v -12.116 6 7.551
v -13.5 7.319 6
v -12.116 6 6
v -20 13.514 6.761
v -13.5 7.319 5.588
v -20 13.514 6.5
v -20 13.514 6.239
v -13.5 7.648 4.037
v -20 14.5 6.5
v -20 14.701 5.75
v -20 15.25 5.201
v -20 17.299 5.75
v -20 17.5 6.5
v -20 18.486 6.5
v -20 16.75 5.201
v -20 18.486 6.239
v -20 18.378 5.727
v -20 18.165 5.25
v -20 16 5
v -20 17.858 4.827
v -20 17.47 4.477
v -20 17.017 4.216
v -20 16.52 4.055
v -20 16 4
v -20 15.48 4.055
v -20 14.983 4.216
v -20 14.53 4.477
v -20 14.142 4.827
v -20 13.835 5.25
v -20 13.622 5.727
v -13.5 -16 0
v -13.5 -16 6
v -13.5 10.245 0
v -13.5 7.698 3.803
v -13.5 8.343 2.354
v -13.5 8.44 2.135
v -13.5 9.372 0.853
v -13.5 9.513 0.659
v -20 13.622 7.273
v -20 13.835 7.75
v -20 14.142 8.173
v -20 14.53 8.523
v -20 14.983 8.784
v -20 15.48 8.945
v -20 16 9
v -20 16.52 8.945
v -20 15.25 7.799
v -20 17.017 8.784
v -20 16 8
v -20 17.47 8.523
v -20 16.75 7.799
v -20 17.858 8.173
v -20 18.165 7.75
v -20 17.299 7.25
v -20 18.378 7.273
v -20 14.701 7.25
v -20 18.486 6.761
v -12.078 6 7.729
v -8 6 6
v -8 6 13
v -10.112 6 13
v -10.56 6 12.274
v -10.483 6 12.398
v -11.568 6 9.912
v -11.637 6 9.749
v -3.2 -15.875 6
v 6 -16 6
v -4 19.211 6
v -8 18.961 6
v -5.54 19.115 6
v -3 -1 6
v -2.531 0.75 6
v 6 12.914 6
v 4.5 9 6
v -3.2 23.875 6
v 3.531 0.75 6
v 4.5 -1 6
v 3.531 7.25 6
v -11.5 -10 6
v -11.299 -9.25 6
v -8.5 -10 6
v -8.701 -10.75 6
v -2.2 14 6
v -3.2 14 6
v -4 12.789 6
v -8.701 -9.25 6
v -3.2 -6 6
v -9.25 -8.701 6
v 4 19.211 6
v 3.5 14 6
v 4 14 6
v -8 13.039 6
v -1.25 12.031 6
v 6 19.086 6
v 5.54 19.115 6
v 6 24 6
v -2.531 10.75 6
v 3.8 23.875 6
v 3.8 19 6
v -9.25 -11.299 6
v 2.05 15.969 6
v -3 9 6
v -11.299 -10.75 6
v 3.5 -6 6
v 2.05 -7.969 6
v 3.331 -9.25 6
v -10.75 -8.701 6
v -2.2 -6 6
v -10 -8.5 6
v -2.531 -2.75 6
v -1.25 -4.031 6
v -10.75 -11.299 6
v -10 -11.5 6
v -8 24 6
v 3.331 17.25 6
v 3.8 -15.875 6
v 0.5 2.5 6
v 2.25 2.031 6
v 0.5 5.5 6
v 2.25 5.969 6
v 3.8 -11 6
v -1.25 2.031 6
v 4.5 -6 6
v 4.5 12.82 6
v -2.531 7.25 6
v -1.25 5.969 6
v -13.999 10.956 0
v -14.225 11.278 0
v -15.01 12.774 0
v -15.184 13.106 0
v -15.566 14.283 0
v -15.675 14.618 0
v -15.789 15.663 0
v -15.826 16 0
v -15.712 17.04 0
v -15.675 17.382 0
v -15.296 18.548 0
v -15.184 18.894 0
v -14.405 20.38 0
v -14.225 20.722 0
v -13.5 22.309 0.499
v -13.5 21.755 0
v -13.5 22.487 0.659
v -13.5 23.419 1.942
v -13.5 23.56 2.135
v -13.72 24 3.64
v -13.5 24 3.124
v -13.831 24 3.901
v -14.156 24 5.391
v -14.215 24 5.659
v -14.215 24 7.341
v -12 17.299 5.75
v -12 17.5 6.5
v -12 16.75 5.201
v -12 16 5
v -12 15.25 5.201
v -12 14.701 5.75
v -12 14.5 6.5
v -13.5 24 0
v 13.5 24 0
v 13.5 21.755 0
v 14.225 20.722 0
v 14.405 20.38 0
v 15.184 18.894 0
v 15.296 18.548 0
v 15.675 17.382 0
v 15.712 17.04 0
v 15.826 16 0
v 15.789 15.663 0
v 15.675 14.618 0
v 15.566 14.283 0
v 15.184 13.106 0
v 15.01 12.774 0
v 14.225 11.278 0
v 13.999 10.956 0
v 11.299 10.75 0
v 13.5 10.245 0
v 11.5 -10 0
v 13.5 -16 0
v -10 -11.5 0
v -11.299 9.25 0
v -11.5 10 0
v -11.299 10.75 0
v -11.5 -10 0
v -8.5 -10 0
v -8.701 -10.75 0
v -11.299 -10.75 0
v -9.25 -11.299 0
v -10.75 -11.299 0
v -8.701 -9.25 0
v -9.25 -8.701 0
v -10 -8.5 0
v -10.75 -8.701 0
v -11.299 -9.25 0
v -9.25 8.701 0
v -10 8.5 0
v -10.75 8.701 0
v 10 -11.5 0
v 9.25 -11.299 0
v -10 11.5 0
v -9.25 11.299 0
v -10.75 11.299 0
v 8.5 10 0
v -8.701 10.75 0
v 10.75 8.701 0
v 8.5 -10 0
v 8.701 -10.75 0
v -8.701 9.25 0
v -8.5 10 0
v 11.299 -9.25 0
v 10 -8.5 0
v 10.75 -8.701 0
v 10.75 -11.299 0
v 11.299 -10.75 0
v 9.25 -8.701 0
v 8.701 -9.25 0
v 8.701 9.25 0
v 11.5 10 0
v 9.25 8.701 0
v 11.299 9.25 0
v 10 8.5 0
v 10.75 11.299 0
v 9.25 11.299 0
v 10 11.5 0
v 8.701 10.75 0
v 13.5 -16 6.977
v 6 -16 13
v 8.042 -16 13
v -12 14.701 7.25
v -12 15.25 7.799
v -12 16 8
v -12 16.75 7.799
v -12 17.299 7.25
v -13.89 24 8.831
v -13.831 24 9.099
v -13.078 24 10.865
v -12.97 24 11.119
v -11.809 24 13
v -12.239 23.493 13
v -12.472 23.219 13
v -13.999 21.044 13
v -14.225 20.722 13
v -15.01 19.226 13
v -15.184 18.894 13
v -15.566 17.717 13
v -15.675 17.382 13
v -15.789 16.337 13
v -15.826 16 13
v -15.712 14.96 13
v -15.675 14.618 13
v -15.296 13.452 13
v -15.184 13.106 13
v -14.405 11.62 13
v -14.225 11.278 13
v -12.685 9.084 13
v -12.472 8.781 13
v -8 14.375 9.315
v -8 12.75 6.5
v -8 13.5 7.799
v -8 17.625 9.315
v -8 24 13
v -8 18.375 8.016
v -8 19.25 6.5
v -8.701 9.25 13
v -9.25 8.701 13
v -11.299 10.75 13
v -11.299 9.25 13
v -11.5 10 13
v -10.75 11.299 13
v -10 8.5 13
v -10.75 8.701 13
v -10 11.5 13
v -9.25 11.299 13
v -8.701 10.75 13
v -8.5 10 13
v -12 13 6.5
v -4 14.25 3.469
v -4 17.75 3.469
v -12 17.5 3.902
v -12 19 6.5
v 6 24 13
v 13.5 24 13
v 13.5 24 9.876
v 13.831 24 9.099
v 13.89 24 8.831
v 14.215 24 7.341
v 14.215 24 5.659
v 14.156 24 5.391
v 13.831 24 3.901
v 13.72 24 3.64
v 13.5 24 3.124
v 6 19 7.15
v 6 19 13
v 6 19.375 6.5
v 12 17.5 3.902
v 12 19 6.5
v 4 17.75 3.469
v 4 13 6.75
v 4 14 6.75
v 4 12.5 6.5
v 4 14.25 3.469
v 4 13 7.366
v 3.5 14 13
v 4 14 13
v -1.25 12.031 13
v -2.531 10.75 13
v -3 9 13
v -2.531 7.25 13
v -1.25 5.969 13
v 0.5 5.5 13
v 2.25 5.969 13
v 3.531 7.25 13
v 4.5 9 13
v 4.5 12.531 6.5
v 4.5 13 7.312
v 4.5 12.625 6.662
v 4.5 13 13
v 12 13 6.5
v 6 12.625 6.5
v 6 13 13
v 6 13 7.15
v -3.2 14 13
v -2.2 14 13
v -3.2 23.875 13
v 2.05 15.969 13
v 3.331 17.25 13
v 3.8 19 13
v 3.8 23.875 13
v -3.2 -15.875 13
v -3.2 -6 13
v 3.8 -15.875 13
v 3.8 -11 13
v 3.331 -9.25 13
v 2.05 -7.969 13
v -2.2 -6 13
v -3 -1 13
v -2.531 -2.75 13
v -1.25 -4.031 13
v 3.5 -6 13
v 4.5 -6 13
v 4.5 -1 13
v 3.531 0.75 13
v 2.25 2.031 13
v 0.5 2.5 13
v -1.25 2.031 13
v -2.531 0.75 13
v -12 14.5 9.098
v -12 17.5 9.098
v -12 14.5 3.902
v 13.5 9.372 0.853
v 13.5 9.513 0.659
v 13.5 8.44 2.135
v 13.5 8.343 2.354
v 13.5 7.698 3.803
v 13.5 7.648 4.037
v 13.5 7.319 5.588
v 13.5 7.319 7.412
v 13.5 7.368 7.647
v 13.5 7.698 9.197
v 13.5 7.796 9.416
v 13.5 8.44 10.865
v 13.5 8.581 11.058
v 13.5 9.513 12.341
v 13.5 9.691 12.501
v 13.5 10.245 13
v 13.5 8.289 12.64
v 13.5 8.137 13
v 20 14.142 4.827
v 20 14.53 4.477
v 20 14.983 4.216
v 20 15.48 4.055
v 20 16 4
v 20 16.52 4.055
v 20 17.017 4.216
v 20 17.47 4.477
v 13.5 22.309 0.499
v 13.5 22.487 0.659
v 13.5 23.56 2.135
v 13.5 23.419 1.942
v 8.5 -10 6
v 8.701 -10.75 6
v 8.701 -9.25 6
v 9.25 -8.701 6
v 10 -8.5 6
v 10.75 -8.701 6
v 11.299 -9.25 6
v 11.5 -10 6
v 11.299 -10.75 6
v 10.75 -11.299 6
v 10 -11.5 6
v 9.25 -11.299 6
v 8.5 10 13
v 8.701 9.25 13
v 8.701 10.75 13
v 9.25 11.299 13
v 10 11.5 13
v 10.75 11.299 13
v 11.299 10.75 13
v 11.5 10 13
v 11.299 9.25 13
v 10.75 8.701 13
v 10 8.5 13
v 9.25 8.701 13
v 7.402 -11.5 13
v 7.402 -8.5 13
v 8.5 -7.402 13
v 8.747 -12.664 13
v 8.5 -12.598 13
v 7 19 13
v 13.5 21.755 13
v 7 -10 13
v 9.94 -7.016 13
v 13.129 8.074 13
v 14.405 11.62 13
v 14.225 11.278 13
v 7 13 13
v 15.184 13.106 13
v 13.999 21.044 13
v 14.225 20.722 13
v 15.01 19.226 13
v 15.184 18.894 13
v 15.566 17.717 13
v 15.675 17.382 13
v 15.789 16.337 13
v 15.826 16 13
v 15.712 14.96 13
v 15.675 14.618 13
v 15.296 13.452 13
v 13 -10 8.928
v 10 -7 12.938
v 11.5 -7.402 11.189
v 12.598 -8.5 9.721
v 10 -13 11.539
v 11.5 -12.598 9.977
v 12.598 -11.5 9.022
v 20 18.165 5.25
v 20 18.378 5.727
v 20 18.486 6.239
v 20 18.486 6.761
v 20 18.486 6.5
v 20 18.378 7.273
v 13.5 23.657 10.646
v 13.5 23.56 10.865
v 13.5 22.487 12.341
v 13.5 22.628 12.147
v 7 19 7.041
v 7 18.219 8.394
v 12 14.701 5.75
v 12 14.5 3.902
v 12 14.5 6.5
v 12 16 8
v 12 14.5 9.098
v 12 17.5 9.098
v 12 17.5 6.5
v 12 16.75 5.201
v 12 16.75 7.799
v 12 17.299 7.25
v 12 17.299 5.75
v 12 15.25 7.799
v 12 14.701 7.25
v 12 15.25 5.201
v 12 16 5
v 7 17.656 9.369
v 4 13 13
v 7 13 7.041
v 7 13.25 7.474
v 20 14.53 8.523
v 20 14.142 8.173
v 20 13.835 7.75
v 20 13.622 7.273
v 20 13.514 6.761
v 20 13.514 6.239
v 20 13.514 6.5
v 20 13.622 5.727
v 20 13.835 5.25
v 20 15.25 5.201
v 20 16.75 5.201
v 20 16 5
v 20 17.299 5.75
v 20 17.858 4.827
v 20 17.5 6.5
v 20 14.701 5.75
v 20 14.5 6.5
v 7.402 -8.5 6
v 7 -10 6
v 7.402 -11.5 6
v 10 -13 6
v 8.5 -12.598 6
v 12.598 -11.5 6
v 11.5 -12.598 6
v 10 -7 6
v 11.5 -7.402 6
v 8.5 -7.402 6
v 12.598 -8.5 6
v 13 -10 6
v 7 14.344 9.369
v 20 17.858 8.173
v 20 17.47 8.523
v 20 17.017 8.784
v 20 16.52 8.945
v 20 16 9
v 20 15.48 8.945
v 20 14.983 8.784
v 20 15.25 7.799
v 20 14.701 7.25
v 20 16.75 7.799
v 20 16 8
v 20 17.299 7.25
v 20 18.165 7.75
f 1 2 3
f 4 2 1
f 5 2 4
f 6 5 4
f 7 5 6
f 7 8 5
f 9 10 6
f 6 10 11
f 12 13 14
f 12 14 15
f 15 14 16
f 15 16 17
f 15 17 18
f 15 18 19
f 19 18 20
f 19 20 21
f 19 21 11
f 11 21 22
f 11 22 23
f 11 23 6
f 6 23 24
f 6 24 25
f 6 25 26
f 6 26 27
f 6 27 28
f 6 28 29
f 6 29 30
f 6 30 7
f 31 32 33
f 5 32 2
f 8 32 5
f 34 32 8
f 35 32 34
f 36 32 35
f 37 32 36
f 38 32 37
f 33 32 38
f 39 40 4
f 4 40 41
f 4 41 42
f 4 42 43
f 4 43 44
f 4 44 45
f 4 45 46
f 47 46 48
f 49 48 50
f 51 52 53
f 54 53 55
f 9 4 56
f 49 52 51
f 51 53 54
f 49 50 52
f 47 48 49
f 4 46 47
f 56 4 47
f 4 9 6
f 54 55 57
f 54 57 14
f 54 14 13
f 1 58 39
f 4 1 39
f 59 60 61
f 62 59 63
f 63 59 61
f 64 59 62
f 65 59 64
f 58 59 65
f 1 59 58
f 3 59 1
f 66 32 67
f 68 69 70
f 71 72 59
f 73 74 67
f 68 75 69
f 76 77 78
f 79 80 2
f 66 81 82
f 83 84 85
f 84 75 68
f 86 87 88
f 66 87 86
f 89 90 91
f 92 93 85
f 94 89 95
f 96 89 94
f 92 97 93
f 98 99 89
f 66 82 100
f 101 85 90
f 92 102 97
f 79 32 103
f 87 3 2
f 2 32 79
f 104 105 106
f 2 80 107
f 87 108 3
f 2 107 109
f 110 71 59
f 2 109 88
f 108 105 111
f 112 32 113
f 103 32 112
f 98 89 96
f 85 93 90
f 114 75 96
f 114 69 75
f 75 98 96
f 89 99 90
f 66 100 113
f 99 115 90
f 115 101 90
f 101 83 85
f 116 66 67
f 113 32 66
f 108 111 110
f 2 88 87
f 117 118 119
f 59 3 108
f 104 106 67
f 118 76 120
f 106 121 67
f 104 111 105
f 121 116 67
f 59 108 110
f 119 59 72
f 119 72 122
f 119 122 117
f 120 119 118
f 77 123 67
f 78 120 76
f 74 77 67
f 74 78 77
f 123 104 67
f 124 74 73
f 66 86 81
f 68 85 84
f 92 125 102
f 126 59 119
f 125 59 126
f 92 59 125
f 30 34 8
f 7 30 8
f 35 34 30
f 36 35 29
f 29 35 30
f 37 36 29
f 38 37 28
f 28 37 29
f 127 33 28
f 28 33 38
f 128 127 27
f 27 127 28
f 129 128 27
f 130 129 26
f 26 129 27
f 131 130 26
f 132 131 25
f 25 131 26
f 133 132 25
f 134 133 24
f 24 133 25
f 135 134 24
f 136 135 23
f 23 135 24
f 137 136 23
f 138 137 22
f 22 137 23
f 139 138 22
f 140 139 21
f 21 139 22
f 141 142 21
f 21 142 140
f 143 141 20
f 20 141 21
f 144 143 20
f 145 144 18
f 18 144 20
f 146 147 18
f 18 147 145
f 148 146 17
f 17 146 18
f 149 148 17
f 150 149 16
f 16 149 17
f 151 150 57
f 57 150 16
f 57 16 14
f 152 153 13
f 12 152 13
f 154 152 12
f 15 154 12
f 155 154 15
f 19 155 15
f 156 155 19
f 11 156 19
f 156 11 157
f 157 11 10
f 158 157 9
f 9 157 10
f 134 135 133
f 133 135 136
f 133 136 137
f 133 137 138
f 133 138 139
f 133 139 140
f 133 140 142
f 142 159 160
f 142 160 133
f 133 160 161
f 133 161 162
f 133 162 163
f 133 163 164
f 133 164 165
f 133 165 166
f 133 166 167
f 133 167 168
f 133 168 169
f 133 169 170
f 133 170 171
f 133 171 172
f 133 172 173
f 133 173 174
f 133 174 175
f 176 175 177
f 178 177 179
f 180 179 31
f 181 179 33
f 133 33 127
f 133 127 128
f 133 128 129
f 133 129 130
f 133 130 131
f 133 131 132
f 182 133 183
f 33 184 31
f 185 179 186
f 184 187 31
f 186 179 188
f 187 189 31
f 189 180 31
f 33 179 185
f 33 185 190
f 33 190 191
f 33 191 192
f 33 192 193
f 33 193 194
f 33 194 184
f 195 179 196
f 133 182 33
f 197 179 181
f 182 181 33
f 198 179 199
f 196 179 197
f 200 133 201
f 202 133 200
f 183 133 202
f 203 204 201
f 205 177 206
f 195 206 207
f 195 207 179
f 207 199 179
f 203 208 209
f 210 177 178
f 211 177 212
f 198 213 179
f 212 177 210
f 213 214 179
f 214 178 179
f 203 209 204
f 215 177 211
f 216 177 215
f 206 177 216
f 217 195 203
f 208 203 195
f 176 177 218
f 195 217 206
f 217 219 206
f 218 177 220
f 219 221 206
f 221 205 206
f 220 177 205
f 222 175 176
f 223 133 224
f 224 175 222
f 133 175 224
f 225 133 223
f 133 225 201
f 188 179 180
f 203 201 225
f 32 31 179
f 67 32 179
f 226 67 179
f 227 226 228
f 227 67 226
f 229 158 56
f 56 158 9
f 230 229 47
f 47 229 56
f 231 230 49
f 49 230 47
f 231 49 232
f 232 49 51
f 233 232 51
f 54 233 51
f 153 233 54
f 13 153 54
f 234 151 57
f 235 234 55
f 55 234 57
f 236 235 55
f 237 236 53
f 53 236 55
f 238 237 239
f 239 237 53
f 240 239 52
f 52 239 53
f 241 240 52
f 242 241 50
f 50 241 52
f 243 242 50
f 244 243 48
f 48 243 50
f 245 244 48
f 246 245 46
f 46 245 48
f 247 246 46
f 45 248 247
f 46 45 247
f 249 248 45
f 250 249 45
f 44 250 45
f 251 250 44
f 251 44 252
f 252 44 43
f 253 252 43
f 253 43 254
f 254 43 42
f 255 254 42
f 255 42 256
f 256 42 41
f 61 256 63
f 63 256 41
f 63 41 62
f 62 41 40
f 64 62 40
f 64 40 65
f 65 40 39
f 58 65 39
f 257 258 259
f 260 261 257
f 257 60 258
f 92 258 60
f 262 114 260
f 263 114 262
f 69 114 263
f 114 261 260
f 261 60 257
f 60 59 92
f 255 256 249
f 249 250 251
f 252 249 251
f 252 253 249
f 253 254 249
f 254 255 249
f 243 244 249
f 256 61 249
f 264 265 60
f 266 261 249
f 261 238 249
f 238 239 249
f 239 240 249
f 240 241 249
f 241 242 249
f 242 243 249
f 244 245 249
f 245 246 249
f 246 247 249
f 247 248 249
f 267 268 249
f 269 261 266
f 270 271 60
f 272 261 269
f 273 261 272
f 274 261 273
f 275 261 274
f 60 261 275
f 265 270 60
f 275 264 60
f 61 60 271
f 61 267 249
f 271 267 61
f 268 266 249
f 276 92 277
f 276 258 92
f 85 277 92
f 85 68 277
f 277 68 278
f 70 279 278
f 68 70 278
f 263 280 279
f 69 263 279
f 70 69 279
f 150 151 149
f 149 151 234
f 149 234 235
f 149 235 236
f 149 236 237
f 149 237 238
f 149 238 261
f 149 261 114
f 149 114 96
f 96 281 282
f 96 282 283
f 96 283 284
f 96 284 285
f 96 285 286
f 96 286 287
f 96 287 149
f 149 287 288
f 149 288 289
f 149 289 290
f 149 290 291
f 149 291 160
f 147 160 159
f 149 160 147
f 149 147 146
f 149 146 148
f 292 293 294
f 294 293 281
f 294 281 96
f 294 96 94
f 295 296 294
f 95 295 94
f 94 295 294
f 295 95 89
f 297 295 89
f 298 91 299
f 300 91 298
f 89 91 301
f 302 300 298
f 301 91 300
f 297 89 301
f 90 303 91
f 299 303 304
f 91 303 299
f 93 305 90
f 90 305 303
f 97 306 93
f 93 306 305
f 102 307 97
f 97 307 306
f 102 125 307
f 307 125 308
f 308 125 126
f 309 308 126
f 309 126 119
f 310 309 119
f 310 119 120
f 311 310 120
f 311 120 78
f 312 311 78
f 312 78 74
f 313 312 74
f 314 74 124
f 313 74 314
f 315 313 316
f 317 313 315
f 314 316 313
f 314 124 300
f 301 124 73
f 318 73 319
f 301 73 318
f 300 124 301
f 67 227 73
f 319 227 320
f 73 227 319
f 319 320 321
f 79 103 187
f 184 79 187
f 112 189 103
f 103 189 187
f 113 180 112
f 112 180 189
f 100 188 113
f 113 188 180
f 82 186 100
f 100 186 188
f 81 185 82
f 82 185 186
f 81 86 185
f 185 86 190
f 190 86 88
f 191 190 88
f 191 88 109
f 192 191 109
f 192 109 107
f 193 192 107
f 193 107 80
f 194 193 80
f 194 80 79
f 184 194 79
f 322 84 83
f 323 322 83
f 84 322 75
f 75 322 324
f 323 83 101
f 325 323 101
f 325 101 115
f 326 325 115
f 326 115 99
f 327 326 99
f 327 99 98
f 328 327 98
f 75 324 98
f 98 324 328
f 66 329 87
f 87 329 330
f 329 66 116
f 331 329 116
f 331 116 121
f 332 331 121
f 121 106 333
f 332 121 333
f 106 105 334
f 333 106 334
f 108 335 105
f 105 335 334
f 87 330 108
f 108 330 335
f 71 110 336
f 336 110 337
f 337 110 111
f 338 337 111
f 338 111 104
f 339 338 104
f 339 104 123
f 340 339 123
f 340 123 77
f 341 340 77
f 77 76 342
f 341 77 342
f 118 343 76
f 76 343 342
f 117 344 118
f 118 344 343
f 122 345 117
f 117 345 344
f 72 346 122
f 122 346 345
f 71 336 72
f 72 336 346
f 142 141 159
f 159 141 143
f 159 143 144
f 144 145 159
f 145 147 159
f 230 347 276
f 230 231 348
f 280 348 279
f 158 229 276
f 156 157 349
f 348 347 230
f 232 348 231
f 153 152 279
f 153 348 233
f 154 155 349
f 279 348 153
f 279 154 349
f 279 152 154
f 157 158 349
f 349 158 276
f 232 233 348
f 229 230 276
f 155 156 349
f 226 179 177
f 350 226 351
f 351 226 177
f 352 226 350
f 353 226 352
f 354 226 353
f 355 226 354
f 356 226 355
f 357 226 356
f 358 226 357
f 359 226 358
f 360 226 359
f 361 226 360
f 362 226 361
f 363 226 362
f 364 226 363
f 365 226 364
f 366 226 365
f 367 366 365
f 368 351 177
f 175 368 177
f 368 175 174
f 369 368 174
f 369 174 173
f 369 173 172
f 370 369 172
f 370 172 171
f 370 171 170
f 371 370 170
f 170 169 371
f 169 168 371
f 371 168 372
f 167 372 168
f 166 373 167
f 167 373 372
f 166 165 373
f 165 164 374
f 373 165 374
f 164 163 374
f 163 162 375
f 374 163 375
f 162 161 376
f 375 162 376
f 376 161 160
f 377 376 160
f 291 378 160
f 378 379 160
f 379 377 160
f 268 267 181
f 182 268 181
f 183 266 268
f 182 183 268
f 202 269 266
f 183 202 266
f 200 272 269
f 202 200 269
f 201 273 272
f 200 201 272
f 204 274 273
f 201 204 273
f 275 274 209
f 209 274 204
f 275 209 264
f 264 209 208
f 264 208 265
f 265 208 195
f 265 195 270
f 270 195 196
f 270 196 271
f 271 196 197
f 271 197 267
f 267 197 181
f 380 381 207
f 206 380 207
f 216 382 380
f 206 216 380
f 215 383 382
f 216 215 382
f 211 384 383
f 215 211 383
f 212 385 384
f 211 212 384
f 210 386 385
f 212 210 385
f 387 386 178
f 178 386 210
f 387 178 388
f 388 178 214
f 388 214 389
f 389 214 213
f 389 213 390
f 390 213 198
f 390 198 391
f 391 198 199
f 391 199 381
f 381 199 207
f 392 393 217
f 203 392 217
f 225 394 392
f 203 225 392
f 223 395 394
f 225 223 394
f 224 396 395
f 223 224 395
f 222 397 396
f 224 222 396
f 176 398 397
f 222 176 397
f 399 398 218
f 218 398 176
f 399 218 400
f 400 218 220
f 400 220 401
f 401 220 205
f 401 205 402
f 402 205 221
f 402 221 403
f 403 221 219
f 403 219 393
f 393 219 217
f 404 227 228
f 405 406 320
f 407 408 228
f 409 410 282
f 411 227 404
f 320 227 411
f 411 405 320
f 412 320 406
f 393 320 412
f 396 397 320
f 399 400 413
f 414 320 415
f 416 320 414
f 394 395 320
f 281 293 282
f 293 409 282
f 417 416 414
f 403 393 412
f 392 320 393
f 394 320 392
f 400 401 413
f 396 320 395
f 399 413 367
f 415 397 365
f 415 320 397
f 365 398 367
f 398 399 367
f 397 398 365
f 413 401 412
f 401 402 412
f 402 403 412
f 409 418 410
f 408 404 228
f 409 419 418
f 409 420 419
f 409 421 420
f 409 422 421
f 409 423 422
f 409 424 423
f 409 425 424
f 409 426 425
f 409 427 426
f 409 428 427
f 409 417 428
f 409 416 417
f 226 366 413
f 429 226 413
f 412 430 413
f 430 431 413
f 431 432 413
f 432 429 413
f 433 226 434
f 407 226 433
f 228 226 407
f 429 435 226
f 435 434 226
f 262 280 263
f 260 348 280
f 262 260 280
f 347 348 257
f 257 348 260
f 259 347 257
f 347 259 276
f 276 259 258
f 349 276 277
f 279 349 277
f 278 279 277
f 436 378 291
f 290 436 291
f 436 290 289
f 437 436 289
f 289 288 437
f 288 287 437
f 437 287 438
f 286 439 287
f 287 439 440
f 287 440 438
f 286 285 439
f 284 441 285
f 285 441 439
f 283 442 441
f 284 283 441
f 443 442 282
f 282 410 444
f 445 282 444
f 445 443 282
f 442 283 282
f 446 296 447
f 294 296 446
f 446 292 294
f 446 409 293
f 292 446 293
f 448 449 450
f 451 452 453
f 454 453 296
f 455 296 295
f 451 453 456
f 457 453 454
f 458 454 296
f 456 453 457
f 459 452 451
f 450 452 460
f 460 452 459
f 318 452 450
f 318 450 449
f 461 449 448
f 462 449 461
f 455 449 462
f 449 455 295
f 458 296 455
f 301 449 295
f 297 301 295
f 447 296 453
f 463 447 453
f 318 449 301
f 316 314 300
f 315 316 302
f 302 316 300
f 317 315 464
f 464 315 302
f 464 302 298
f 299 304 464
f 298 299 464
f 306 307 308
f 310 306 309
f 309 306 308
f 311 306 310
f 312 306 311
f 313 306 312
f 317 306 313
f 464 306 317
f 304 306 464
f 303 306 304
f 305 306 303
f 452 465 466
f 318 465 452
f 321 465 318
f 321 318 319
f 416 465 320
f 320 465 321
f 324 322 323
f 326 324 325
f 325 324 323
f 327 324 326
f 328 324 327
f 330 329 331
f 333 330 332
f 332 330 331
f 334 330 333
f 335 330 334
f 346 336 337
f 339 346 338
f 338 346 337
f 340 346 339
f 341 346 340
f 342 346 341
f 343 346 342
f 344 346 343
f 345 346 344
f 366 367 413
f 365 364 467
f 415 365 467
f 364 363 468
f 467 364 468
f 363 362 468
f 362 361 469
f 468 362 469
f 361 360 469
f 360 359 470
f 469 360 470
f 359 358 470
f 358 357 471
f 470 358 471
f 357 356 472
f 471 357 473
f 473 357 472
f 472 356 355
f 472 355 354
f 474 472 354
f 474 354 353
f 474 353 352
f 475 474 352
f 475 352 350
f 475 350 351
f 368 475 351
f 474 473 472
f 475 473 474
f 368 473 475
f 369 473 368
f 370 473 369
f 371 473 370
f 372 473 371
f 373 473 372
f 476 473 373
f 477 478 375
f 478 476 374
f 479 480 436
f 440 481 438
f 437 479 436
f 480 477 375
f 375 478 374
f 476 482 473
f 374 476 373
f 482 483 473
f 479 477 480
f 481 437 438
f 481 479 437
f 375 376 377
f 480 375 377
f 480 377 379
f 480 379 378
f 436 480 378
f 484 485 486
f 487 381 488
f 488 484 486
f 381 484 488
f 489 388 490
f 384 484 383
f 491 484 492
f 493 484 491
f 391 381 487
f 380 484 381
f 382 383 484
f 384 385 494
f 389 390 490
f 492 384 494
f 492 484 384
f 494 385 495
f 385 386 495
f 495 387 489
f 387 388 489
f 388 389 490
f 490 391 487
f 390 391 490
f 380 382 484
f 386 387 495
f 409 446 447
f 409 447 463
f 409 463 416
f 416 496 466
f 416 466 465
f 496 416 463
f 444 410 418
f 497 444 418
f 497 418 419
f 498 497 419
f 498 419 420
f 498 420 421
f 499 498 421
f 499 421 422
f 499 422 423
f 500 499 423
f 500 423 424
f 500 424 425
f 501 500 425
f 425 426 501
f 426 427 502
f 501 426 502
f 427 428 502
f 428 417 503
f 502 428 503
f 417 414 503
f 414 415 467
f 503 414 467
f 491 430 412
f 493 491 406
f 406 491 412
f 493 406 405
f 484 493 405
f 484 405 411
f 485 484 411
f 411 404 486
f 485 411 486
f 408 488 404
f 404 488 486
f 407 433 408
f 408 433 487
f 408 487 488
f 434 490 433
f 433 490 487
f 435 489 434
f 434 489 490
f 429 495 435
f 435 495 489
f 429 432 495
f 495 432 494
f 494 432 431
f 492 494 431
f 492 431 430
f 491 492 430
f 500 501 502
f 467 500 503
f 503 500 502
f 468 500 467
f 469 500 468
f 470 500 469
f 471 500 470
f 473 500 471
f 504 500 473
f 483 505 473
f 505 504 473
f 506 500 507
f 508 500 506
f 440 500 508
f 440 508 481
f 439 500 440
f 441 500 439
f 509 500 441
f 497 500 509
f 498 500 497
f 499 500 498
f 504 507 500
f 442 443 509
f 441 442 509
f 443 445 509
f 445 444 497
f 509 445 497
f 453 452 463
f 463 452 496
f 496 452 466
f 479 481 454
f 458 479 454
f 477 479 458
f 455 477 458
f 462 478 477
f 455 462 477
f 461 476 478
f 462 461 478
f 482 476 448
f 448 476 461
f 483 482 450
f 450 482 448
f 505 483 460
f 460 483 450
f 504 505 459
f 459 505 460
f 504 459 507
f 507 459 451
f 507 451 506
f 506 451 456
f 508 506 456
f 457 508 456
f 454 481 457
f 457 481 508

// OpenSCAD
// file: configuration.scad
/*
 * Igor Soares' parallel kinematic XY i2
 * Configuration
 * (C) 2014 by Ígor Bruno Pereira Soares
 *
 * This project is free: you can redistribute it and/or modify
 * it under the terms of the GNU General Public License as published by
 * the Free Software Foundation, either version 2 of the License, or
 * (at your option) any later version.
 *
 * This project is distributed in the hope that it will be useful,
 * but WITHOUT ANY WARRANTY; without even the implied warranty of
 * MERCHANTABILITY or FITNESS FOR A PARTICULAR PURPOSE.  See the
 * GNU General Public License for more details.
 *
 * You should have received a copy of the GNU General Public License
 * along with this project.  If not, see <http://www.gnu.org/licenses/>.
 */

LIGHT_WALL_WIDTH = 2.01;
WALL_WIDTH = 5.0;
VERTICAL_SUPPORT_WALL = 0.5;
HORIZONTAL_SUPPORT_WALL = 0.255;

BEARING_DIAMETER = 22.4;
BEARING_WIDTH = 7;
BEARING_SCREW_DIAMETER = 8.2;
BEARING_SCREW_NUT_WIDTH = 13;
BEARING_WASHER_SPACING = 2.5;

LINEAR_BUSHING_DIAMETER = 15.3;
LINEAR_BUSHING_LEN = 24.4;
LINEAR_BUSHING_WALL = 1.0;

ROD_ACTUAL_DIAMETER = 8.0;
ROD_HOLE_DIAMETER = 8.4;

MOTOR_SCREW_DIAMETER = 3.4;
MOTOR_SCREW_MOUNT = 31; // nema 17
MOTOR_SIZE = 43;
MOTOR_MOUNT_INNER_DIAMETER = 30;
MOTOR_BELT_CLEARANCE = 5;

ST = 0.001;
// main file
include <configuration.scad>;

// Belt parameters
belt_width_clamp = 6;              // width of the belt, typically 6 (mm)
belt_thickness = 1.0 - 0.05;       // slightly less than actual belt thickness for compression fit (mm)           
belt_pitch = 2.0;                  // tooth pitch on the belt, 2 for GT2 (mm)
tooth_radius = 0.8;                // belt tooth radius, 0.8 for GT2 (mm)

separation = 40;
thickness = 6;

horn_thickness = 13;
horn_x = 8;

belt_width = 5;
belt_x = 5.6;
belt_z = 7;
corner_radius = 3.5;


m3_nut_radius = 3.0;
m3_wide_radius = 1.5;

module carriage() {
  // Timing belt (up and down).
  translate([-belt_x, 0, belt_z + belt_width/2]) %
    cube([1.2, 100, belt_width], center=true);
  translate([belt_x, 0, belt_z + belt_width/2]) %
    cube([1.2, 100, belt_width], center=true);
  difference() {
    union() {
      // Main body.
      translate([0, 4, thickness/2])
        cube([27, 40, thickness], center=true);
      // Ball joint mount horns.
      for (x = [-1, 1]) {
        scale([x, 1, 1]) intersection() {
          translate([0, 15, horn_thickness/2])
            cube([separation, 18, horn_thickness], center=true);
          translate([horn_x, 16, horn_thickness/2]) rotate([0, 90, 0])
            cylinder(r1=14, r2=2.5, h=separation/2-horn_x);
        }
      }

      // Avoid touching diagonal push rods (carbon tube).
      difference() {
        translate([9.75, 4, horn_thickness/2+1])
          cube([7.5, 40, horn_thickness-2], center=true);

        translate([23, -12, 12.5]) rotate([30, 40, 30])
          cube([40, 40, 20], center=true);
        translate([10, -10, 0])
          cylinder(r=m3_wide_radius+1.5, h=100, center=true, $fn=12);

      }

      // Belt clamps
      for (y = [[9, -1], [-1, 1]]) {
        translate([0.5, y[0], horn_thickness/2+1])
          color("green") hull() {
            translate([ corner_radius-0.0,  -y[1] * corner_radius + y[1], 0]) cube([1.0, 5, horn_thickness-2], center=true);
            cylinder(h=horn_thickness-2, r=corner_radius, $fn=12, center=true);
          }
      }
      for (y = [[19, -1], [-11, 1]]) {
        translate([0.30, y[0], horn_thickness/2+1])
          rotate([0, 0, 180]) color("blue") hull() {
            translate([ corner_radius-0.5,  -y[1] * corner_radius + y[1], 0]) cube([1.0, 5, horn_thickness-2], center=true);
            cylinder(h=horn_thickness-2, r=corner_radius, $fn=12, center=true);
				translate([ 0,  y[1]*4, 0]) cube([2*corner_radius, 0.5*corner_radius, horn_thickness-2], center=true);
          }
      }
    }
    // Screws for linear slider.
    for (x = [-10, 10]) {
      for (y = [-10, 10]) {
        translate([x, y, thickness]) #
          cylinder(r=m3_wide_radius, h=30, center=true, $fn=12);
      }
    }
    // Screws for ball joints.
    translate([-35, 16, horn_thickness/2]) rotate([0, 90, 0]) #
      cylinder(r=m3_wide_radius, h=60, center=true, $fn=12);
    translate([35, 16, horn_thickness/2]) rotate([0, 90, 0]) #
      cylinder(r=m3_wide_radius, h=60, center=true, $fn=12);
    // Lock nuts for ball joints.
    for (x = [-1, 1]) {
      scale([x, 1, 1]) intersection() {
        translate([horn_x, 16, horn_thickness/2]) rotate([90, 0, -90])
           cylinder(r1=m3_nut_radius, r2=m3_nut_radius+0.5, h=8,
                   center=true, $fn=6);
      }
    }
	translate([horn_x-2.5, 16, 10])	 # cube([3,2*m3_nut_radius,horn_thickness/2],center=true);
  }
}

carriage();

/*
    for (x = [-1, 1]) {
      scale([x, 1, 1]) intersection() {
        translate([horn_x, 16, horn_thickness/2]) rotate([90, 0, -90])
          cylinder(r1=m3_nut_radius, r2=m3_nut_radius+0.3, h=8,
                   center=true, $fn=6);
      }
    }
*/
